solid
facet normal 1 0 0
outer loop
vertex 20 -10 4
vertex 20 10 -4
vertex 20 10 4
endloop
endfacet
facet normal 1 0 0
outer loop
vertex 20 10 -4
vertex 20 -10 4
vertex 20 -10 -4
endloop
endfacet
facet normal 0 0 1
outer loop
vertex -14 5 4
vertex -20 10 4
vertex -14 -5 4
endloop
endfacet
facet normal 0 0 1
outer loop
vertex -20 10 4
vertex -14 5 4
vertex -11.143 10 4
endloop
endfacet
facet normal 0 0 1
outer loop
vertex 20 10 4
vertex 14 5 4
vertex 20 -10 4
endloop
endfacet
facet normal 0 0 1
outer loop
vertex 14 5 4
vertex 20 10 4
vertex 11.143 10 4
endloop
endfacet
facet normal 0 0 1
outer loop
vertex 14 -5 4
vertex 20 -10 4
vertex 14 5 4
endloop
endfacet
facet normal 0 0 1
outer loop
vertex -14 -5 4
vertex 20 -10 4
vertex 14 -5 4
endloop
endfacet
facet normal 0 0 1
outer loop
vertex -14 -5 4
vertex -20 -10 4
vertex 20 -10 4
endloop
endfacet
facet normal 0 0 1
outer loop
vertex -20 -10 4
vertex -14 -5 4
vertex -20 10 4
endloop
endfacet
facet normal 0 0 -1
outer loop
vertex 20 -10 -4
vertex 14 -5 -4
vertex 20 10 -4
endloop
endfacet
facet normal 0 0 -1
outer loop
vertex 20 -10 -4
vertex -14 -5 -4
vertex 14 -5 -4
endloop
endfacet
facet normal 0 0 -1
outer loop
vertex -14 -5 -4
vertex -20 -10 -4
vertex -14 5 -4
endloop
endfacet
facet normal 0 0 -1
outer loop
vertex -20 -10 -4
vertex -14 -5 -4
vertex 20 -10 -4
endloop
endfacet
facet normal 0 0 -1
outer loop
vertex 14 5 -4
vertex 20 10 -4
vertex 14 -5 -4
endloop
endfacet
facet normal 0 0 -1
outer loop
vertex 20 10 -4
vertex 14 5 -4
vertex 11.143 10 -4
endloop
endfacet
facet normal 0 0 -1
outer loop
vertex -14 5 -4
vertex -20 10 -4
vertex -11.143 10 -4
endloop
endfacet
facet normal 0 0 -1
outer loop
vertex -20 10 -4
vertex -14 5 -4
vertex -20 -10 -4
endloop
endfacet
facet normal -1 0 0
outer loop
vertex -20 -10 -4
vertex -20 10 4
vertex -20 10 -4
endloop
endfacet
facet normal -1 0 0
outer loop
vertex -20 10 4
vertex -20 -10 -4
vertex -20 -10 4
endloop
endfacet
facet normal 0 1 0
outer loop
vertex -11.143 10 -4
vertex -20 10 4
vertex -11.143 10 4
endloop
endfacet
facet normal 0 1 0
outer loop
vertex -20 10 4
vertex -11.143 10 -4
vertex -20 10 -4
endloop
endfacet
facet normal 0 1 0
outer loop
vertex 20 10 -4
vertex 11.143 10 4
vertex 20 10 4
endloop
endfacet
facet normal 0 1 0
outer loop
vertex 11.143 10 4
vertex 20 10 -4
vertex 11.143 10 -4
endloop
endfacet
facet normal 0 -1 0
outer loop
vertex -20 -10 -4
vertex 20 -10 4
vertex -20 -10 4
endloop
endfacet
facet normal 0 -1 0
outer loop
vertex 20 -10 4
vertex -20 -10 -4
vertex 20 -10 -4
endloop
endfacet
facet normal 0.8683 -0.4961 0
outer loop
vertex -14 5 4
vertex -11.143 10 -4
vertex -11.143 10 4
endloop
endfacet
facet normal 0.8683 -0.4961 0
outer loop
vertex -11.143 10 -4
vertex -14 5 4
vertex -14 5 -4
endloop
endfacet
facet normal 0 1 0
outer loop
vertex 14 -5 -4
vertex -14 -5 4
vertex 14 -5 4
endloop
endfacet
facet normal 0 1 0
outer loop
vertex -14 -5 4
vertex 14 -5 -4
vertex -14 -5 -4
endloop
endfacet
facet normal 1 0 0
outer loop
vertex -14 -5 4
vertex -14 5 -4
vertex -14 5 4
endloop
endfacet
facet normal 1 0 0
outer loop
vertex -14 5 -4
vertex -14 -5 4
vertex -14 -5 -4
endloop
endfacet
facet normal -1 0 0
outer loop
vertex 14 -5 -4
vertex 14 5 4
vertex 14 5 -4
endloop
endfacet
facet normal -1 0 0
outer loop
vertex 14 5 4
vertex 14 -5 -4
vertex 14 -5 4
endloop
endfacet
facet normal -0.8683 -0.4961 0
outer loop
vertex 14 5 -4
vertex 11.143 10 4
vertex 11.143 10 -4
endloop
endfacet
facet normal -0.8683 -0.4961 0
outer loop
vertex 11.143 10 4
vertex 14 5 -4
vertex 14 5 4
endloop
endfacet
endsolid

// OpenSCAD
difference(){
cube([40,20,8],center=true);
hull(){
cube([28,10,10],center=true);
translate([0,10,0])
cube([22,0.5,12],center=true);
}
}
